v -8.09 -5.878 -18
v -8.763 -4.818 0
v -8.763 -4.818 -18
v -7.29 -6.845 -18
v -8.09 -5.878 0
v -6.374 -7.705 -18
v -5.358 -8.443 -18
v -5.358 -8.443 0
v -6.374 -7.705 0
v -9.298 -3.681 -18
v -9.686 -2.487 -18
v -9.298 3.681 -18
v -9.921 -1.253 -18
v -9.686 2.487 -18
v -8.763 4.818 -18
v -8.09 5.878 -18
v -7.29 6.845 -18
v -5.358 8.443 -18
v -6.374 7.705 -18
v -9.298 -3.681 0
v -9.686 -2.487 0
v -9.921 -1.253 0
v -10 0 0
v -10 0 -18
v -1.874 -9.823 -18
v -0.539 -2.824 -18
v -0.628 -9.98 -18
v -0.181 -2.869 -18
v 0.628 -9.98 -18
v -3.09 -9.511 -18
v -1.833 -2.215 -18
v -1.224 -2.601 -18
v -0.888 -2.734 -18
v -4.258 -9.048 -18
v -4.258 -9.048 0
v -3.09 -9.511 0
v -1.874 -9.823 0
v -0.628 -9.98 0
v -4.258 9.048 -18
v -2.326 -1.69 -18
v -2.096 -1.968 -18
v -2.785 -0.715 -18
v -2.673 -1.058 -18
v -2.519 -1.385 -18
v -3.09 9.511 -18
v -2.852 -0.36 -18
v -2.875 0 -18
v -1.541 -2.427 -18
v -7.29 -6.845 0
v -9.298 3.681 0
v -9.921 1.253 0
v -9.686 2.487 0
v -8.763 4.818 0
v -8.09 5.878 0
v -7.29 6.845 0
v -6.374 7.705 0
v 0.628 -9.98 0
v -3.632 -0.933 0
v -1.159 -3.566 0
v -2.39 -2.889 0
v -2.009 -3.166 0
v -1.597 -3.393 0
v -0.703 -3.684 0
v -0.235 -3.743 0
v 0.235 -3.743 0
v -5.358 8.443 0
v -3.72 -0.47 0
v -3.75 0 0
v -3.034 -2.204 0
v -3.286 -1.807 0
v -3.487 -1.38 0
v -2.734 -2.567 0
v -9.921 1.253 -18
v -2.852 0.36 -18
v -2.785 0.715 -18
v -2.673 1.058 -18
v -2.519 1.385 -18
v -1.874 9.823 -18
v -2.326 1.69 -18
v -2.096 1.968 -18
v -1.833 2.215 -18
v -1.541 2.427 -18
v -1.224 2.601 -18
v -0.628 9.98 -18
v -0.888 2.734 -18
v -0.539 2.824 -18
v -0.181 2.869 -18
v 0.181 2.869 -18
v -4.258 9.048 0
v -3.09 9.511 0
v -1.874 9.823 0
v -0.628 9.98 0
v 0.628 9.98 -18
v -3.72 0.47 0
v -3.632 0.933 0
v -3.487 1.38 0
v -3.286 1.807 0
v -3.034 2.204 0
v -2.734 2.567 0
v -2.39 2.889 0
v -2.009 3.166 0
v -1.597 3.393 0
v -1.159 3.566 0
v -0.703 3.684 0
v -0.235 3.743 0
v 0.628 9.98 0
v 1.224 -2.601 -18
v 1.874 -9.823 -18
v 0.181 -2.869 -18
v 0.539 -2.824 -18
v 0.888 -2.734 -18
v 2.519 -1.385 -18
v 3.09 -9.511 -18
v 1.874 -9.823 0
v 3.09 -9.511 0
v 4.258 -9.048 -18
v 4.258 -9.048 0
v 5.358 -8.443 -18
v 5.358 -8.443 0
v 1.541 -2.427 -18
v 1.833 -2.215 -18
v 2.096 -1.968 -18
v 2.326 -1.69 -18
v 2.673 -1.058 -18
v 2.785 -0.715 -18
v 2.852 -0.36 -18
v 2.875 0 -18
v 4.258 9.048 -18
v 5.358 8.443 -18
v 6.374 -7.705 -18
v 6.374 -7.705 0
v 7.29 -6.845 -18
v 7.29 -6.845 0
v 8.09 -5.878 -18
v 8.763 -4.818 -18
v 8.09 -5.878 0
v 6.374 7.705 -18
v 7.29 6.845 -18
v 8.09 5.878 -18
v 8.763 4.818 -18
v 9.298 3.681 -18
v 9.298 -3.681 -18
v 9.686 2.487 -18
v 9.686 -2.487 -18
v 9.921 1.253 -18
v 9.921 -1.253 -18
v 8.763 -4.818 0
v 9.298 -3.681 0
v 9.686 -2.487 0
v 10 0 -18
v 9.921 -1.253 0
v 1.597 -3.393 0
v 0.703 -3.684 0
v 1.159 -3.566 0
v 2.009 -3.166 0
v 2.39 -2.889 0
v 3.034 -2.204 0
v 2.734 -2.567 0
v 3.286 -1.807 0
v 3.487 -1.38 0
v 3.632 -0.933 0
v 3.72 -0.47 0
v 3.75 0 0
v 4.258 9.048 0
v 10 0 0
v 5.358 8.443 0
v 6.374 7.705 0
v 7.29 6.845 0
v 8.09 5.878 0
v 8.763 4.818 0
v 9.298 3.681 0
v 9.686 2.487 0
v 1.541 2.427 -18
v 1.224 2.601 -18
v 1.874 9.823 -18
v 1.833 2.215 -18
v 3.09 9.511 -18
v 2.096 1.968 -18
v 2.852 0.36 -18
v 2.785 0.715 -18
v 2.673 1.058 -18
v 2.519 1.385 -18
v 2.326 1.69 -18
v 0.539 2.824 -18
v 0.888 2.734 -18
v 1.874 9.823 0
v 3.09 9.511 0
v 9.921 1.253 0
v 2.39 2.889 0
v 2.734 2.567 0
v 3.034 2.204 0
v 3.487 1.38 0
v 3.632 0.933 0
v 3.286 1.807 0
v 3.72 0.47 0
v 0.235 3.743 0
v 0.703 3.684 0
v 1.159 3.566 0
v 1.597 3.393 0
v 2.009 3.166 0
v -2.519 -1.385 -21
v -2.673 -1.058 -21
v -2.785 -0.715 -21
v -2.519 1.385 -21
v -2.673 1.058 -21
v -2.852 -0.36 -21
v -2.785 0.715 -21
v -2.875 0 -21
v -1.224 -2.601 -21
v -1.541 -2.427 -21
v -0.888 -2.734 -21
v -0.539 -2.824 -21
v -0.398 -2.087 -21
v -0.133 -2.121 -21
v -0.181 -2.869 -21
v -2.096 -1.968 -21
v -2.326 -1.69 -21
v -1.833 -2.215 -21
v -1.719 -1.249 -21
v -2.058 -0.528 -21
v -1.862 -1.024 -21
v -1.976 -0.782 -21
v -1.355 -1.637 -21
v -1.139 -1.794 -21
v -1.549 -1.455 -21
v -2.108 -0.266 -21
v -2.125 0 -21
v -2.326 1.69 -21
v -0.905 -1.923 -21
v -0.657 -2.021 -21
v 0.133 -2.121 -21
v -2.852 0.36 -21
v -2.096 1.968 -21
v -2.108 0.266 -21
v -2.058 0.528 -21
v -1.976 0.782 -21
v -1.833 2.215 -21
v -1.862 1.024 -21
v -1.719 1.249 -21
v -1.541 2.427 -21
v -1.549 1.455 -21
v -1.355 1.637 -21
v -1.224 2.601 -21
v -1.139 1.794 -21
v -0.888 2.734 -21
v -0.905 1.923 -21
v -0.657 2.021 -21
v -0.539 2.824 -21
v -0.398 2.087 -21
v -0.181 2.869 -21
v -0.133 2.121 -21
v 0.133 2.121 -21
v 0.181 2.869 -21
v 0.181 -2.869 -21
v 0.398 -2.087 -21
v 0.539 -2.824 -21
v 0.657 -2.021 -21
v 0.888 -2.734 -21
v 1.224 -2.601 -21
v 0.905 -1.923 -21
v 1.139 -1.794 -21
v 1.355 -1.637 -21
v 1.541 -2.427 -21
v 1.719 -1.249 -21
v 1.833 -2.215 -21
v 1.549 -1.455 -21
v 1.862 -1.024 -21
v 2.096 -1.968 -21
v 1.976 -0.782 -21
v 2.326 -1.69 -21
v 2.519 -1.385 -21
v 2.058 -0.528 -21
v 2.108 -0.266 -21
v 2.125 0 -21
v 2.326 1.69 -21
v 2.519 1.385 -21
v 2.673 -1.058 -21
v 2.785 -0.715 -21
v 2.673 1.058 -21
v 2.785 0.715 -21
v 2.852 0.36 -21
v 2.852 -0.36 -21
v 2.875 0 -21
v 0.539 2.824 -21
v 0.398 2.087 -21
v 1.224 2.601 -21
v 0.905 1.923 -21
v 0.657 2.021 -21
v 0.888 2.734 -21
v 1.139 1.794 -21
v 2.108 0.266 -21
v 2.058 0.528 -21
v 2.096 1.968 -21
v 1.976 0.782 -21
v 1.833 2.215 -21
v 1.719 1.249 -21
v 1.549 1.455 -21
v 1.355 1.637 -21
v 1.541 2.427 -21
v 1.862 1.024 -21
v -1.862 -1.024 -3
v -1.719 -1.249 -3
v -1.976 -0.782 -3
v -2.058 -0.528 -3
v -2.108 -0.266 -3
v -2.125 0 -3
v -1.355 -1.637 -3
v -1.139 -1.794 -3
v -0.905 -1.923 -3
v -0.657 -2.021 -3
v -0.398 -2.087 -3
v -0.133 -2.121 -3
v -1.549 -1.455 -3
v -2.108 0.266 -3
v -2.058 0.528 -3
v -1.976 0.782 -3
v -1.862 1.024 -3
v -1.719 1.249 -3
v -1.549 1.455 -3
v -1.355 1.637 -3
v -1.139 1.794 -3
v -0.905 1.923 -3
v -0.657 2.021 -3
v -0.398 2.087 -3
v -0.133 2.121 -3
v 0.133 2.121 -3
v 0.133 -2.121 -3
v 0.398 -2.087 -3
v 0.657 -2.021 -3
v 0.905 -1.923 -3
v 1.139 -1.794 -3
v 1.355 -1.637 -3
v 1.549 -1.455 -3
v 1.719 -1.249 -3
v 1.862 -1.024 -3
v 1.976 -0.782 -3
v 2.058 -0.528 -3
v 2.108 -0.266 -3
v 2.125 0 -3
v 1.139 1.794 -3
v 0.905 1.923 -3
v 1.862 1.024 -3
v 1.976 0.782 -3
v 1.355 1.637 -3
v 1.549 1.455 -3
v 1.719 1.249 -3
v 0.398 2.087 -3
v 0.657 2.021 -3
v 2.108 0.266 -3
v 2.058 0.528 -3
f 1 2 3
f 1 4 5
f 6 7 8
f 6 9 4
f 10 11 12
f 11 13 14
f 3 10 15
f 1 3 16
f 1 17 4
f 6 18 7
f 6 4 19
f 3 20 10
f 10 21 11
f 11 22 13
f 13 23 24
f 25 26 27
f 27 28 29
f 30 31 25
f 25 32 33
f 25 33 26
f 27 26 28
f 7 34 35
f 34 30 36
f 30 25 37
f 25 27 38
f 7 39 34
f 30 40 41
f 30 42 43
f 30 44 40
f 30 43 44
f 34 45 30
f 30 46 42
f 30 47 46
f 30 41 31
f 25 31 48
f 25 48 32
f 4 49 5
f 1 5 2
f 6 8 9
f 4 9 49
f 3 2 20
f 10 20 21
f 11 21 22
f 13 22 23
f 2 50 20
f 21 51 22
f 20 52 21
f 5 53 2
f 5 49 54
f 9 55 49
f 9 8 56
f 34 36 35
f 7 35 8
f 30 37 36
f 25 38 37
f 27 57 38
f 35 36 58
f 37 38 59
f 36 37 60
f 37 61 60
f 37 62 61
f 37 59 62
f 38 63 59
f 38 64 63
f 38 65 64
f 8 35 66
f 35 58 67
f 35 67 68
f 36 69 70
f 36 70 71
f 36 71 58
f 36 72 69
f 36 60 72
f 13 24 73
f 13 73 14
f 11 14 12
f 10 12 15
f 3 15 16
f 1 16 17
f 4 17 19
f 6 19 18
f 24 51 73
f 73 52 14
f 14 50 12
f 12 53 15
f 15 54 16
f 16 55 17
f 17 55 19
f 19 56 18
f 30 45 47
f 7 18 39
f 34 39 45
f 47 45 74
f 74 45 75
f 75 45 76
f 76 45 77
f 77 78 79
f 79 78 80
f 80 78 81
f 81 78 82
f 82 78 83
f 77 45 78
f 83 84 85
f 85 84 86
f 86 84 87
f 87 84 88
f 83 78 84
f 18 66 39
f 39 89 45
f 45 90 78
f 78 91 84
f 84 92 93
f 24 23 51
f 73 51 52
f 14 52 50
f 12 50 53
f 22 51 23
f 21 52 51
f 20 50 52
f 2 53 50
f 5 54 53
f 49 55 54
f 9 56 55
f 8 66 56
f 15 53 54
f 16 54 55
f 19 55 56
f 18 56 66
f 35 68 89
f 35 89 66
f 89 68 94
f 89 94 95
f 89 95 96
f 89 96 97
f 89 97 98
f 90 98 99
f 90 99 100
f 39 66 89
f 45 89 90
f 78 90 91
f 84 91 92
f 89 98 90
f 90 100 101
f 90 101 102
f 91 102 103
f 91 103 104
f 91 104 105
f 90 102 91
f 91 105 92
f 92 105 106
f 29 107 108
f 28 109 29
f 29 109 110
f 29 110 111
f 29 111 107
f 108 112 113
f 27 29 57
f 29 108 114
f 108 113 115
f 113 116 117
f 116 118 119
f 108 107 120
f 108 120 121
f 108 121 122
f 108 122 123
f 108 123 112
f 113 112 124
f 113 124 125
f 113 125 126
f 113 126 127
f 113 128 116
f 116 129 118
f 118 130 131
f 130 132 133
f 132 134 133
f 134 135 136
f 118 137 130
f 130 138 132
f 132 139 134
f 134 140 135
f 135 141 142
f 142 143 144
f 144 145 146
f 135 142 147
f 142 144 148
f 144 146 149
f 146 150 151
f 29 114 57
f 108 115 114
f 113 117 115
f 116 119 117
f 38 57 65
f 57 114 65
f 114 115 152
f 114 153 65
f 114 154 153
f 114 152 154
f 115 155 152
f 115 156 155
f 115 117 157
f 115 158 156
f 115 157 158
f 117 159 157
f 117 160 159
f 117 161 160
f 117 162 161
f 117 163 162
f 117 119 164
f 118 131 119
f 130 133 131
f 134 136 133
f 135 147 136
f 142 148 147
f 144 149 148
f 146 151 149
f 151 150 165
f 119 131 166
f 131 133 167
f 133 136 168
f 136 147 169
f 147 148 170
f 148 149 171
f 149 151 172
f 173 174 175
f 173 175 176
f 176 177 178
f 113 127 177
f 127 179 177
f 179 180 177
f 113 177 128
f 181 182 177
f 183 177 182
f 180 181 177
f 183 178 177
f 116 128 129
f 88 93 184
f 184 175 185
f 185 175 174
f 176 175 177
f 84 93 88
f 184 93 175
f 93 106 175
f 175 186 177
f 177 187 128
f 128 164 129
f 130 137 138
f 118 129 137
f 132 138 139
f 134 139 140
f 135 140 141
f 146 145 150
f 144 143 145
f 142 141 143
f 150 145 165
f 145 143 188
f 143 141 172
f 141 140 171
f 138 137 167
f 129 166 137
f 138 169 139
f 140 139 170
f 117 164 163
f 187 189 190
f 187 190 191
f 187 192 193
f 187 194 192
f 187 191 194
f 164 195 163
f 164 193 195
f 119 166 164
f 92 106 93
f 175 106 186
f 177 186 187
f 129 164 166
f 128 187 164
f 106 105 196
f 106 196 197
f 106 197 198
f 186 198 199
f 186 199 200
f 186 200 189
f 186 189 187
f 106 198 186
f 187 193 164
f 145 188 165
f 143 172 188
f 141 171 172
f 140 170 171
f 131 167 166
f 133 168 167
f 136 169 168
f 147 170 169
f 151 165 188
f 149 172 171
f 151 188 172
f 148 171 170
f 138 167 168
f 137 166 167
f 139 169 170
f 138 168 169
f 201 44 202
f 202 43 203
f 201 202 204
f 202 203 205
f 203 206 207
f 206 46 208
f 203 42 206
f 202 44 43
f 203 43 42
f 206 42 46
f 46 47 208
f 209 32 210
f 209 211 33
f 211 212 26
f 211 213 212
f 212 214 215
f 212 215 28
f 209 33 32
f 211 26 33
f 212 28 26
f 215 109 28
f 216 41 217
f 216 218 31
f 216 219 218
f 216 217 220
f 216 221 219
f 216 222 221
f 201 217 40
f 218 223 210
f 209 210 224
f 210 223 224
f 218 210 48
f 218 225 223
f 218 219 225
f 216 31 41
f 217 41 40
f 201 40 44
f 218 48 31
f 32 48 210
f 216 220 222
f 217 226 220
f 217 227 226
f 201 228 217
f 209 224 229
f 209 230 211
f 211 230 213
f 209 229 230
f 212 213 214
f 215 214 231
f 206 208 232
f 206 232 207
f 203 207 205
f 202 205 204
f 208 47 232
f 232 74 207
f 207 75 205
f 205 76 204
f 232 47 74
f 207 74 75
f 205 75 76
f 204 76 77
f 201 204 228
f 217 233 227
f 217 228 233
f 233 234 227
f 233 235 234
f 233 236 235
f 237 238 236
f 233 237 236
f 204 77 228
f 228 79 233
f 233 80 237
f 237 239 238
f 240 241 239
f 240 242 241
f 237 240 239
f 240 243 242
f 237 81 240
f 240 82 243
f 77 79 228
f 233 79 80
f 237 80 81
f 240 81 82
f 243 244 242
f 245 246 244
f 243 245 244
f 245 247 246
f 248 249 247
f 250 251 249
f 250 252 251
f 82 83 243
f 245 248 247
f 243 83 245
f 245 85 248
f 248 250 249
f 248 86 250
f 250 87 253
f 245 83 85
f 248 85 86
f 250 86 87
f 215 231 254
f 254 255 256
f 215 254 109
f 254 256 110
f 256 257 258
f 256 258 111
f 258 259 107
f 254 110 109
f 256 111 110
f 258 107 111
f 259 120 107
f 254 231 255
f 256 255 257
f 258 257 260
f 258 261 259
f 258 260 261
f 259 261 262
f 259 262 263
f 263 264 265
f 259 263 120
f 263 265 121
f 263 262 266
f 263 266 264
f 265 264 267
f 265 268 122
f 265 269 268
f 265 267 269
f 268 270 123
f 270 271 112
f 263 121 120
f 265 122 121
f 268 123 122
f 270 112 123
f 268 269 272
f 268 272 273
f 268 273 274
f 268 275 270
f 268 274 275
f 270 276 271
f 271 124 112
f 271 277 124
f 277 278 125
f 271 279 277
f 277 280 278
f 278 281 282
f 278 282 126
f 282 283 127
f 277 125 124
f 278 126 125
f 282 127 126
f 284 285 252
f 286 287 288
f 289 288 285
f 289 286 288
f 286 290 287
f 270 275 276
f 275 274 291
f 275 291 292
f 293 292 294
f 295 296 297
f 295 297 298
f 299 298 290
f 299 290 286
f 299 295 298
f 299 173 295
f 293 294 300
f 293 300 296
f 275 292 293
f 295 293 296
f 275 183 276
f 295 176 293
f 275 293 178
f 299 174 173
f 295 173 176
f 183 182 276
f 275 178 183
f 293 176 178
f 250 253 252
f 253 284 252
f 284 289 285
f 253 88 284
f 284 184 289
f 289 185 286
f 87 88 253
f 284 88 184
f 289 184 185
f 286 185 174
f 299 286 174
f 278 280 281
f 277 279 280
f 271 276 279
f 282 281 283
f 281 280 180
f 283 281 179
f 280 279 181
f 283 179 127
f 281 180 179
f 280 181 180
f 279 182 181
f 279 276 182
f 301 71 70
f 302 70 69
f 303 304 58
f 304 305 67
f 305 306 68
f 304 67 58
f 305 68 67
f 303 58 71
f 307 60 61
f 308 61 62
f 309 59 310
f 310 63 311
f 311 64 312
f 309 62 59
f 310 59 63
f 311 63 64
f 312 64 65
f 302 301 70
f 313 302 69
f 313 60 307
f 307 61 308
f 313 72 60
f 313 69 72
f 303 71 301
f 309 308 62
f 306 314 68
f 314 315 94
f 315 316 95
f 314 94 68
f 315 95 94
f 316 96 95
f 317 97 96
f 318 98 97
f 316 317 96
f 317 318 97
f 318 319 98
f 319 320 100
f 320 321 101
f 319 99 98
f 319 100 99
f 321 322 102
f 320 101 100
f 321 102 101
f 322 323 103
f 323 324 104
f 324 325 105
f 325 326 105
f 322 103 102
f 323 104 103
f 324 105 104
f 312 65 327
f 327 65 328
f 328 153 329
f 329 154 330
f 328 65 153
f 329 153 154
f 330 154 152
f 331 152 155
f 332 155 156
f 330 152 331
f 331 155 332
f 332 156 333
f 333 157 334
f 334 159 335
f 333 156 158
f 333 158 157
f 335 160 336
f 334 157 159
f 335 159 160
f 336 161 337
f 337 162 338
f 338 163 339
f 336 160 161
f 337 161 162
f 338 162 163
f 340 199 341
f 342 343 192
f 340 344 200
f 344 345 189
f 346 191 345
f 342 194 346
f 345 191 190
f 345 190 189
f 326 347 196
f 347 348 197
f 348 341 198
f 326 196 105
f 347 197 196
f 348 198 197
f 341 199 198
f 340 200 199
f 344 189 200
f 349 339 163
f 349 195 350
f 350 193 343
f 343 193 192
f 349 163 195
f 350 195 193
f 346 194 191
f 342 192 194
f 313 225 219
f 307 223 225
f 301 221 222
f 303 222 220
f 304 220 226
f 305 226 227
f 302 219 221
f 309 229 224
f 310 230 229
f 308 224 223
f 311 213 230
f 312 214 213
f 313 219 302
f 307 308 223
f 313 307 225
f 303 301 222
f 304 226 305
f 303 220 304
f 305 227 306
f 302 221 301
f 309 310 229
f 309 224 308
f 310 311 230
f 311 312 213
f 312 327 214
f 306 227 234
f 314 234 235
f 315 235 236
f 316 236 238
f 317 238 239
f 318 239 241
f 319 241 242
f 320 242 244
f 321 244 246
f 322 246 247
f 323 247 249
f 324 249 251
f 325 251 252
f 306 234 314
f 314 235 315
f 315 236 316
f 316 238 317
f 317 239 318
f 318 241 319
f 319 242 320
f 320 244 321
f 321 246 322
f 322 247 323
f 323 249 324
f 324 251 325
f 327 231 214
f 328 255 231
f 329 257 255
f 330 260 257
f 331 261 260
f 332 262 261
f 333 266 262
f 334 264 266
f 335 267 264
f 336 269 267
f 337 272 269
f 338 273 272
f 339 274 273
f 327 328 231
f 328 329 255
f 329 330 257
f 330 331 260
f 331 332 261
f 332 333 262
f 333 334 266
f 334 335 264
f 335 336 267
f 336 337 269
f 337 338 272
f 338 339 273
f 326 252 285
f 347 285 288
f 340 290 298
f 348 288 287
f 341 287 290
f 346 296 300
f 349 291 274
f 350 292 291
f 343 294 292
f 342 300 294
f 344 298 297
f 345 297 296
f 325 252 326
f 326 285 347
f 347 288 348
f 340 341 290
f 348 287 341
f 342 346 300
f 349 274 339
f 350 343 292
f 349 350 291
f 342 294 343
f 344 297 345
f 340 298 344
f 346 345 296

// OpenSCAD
$fn = 50;


difference() {
	union() {
		translate(v = [0, 0, -18.0000000000]) {
			cylinder(h = 18, r = 10.0000000000);
		}
		#translate(v = [0, 0, -21.0000000000]) {
			cylinder(h = 21, r = 2.8750000000);
		}
	}
	union() {
		translate(v = [0, 0, 0]) {
			rotate(a = [0, 0, 0]) {
				difference() {
					union() {
						translate(v = [0, 0, -21.0000000000]) {
							cylinder(h = 21, r = 2.0000000000);
						}
						translate(v = [0, 0, -3]) {
							cylinder(h = 3, r1 = 2.1250000000, r2 = 3.7500000000);
						}
						translate(v = [0, 0, -21.0000000000]) {
							cylinder(h = 21, r = 2.1250000000);
						}
						translate(v = [0, 0, -21.0000000000]) {
							cylinder(h = 21, r = 2.0000000000);
						}
					}
					union();
				}
			}
		}
	}
}
